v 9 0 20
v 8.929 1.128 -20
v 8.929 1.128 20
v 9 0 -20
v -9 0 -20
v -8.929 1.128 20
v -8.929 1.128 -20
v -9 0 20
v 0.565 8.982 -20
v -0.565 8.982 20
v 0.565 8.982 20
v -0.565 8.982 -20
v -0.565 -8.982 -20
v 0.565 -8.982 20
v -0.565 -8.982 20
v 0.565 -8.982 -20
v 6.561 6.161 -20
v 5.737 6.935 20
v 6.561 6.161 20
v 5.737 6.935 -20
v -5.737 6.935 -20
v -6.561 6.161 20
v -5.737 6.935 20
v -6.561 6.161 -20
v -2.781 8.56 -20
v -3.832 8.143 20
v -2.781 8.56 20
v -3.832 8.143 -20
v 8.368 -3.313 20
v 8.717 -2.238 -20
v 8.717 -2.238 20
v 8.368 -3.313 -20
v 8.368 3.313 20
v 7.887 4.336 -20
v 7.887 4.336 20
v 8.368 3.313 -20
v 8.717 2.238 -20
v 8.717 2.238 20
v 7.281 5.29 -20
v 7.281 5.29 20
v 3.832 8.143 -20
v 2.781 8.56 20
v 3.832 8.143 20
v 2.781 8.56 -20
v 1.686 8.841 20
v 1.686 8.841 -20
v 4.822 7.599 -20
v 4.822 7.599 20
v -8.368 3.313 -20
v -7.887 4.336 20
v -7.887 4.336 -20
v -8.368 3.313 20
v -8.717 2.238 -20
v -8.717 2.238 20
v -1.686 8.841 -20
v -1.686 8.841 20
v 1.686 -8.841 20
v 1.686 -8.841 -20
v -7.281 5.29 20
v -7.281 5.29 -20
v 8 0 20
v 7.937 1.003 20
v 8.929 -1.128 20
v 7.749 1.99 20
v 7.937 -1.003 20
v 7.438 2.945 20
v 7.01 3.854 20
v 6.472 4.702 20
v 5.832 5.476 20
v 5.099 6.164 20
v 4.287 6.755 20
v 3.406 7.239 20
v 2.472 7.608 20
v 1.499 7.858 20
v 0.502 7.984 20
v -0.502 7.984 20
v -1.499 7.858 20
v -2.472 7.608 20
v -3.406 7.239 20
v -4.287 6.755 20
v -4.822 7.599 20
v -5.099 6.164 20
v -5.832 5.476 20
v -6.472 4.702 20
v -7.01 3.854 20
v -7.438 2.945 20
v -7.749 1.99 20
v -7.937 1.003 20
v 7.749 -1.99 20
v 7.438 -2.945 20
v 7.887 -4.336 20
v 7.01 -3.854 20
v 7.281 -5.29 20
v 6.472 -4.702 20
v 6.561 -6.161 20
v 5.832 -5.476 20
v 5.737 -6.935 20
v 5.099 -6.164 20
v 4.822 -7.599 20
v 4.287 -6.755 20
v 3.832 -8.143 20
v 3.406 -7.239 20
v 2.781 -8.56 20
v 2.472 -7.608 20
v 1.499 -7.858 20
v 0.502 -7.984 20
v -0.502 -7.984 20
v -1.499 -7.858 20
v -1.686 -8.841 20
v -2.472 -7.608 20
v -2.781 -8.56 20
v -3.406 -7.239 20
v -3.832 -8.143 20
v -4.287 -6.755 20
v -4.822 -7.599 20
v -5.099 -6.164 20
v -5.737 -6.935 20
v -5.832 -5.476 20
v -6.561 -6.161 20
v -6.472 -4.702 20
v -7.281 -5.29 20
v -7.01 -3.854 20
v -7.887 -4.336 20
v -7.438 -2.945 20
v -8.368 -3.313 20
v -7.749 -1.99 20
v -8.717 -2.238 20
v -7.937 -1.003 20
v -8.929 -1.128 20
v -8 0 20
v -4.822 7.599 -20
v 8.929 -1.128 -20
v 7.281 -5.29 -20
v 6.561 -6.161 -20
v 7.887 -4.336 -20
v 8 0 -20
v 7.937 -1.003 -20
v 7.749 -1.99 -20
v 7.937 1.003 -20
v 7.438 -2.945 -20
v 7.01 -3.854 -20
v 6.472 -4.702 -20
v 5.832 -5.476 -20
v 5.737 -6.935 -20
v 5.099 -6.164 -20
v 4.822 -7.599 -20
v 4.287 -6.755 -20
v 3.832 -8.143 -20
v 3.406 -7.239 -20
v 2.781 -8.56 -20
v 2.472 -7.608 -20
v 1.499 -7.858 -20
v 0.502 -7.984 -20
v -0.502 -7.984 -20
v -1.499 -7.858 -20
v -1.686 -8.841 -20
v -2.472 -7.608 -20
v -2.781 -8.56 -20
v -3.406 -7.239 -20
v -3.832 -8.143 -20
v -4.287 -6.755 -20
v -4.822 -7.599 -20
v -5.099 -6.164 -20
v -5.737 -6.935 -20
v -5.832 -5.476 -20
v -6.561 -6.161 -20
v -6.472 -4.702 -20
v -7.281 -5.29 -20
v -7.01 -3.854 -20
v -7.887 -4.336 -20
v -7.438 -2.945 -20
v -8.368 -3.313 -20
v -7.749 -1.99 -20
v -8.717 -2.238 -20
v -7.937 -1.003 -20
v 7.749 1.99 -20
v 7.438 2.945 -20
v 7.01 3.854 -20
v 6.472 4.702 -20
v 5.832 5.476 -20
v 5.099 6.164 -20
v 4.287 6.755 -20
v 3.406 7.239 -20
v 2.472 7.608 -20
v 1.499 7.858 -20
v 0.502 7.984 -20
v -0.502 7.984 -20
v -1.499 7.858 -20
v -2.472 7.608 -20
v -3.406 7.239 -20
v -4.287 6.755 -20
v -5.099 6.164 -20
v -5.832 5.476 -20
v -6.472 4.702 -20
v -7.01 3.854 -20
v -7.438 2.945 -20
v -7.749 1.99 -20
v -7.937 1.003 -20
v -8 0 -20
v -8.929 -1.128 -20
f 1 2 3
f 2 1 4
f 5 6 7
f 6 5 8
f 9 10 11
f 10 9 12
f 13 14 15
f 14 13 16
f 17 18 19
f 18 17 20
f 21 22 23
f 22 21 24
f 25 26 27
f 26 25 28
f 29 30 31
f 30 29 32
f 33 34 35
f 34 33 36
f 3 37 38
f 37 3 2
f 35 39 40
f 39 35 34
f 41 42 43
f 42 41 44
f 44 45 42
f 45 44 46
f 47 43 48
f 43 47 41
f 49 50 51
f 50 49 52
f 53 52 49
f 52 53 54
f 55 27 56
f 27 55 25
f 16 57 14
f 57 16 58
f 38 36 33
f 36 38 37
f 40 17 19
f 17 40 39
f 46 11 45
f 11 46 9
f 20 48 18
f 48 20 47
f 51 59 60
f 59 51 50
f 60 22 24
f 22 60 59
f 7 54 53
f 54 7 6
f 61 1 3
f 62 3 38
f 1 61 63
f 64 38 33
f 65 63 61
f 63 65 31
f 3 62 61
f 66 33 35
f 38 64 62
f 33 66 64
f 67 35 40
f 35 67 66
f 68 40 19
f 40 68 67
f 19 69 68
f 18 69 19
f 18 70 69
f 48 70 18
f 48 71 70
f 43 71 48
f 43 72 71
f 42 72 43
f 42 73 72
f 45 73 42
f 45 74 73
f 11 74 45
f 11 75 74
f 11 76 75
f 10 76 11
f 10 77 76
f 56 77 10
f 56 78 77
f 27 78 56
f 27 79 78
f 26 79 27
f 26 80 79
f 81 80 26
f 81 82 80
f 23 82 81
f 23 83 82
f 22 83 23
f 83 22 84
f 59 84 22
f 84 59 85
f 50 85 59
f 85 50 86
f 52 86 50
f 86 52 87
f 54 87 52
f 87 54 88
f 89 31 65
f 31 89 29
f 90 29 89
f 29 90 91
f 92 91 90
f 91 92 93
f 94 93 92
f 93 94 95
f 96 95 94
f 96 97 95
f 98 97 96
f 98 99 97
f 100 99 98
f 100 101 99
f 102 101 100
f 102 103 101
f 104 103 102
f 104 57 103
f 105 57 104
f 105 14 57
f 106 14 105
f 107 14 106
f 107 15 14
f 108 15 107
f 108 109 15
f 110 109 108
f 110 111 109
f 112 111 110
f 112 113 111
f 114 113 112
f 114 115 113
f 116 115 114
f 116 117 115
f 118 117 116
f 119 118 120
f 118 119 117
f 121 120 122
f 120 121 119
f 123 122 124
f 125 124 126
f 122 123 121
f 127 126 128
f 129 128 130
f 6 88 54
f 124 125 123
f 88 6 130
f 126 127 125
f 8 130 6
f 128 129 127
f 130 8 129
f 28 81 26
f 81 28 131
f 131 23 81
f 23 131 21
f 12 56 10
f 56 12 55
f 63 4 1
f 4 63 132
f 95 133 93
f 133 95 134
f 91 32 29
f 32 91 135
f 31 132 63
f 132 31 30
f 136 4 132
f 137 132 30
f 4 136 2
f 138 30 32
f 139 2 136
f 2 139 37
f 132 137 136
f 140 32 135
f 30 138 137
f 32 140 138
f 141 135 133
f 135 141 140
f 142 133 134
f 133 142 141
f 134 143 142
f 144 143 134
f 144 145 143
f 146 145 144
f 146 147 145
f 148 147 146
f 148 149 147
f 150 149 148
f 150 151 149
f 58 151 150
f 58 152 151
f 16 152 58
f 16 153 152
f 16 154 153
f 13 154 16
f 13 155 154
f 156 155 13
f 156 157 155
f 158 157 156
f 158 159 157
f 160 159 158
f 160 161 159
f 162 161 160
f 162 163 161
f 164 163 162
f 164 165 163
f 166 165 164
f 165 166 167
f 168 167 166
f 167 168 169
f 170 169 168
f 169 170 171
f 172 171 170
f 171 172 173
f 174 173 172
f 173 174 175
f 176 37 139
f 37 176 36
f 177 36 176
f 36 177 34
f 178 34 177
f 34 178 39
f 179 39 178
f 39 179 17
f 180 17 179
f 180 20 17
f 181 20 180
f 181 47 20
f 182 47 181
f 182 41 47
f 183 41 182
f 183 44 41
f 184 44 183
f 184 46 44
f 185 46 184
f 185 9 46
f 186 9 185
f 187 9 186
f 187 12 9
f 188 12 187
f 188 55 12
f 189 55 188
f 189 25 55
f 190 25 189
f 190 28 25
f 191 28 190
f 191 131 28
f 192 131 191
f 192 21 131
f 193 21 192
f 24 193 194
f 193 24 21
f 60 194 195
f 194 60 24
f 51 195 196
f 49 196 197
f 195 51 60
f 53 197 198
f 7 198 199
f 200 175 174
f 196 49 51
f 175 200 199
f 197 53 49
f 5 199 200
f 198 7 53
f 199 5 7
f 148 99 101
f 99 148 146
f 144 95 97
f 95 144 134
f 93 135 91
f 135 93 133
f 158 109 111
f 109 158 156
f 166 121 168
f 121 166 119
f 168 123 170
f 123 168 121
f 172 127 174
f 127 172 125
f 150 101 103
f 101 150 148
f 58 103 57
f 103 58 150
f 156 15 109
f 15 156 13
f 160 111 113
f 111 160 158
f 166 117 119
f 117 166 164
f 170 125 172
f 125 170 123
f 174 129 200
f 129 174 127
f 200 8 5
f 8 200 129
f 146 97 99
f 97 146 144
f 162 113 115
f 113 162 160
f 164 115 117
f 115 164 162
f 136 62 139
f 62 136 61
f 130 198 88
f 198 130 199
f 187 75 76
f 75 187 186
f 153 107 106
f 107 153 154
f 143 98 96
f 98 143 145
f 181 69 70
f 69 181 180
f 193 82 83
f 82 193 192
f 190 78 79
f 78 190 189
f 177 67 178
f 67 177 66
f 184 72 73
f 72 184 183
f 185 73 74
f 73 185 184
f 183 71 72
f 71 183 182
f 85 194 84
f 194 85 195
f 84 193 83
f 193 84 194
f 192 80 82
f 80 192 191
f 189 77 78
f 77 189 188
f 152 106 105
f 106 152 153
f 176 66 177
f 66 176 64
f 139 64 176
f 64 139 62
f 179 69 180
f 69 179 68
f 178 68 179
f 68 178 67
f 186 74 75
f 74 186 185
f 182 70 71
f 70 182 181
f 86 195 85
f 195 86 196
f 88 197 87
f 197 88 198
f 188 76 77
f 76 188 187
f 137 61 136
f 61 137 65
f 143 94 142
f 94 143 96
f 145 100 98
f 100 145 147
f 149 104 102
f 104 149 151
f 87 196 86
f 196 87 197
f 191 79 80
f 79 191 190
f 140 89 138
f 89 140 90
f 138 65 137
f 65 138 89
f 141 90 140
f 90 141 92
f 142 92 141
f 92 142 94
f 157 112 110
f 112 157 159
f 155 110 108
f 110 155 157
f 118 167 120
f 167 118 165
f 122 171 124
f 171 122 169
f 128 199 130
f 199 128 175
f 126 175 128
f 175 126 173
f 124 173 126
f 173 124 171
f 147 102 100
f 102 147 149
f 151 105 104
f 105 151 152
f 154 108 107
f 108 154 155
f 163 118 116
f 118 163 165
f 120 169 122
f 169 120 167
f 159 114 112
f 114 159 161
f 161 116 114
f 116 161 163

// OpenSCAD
$fn = 50;


difference() {
	union() {
		translate(v = [0, 0, -20.0000000000]) {
			cylinder(h = 40, r = 9.0000000000);
		}
	}
	union() {
		translate(v = [0, 0, -100.0000000000]) {
			cylinder(h = 200, r = 8);
		}
	}
}
